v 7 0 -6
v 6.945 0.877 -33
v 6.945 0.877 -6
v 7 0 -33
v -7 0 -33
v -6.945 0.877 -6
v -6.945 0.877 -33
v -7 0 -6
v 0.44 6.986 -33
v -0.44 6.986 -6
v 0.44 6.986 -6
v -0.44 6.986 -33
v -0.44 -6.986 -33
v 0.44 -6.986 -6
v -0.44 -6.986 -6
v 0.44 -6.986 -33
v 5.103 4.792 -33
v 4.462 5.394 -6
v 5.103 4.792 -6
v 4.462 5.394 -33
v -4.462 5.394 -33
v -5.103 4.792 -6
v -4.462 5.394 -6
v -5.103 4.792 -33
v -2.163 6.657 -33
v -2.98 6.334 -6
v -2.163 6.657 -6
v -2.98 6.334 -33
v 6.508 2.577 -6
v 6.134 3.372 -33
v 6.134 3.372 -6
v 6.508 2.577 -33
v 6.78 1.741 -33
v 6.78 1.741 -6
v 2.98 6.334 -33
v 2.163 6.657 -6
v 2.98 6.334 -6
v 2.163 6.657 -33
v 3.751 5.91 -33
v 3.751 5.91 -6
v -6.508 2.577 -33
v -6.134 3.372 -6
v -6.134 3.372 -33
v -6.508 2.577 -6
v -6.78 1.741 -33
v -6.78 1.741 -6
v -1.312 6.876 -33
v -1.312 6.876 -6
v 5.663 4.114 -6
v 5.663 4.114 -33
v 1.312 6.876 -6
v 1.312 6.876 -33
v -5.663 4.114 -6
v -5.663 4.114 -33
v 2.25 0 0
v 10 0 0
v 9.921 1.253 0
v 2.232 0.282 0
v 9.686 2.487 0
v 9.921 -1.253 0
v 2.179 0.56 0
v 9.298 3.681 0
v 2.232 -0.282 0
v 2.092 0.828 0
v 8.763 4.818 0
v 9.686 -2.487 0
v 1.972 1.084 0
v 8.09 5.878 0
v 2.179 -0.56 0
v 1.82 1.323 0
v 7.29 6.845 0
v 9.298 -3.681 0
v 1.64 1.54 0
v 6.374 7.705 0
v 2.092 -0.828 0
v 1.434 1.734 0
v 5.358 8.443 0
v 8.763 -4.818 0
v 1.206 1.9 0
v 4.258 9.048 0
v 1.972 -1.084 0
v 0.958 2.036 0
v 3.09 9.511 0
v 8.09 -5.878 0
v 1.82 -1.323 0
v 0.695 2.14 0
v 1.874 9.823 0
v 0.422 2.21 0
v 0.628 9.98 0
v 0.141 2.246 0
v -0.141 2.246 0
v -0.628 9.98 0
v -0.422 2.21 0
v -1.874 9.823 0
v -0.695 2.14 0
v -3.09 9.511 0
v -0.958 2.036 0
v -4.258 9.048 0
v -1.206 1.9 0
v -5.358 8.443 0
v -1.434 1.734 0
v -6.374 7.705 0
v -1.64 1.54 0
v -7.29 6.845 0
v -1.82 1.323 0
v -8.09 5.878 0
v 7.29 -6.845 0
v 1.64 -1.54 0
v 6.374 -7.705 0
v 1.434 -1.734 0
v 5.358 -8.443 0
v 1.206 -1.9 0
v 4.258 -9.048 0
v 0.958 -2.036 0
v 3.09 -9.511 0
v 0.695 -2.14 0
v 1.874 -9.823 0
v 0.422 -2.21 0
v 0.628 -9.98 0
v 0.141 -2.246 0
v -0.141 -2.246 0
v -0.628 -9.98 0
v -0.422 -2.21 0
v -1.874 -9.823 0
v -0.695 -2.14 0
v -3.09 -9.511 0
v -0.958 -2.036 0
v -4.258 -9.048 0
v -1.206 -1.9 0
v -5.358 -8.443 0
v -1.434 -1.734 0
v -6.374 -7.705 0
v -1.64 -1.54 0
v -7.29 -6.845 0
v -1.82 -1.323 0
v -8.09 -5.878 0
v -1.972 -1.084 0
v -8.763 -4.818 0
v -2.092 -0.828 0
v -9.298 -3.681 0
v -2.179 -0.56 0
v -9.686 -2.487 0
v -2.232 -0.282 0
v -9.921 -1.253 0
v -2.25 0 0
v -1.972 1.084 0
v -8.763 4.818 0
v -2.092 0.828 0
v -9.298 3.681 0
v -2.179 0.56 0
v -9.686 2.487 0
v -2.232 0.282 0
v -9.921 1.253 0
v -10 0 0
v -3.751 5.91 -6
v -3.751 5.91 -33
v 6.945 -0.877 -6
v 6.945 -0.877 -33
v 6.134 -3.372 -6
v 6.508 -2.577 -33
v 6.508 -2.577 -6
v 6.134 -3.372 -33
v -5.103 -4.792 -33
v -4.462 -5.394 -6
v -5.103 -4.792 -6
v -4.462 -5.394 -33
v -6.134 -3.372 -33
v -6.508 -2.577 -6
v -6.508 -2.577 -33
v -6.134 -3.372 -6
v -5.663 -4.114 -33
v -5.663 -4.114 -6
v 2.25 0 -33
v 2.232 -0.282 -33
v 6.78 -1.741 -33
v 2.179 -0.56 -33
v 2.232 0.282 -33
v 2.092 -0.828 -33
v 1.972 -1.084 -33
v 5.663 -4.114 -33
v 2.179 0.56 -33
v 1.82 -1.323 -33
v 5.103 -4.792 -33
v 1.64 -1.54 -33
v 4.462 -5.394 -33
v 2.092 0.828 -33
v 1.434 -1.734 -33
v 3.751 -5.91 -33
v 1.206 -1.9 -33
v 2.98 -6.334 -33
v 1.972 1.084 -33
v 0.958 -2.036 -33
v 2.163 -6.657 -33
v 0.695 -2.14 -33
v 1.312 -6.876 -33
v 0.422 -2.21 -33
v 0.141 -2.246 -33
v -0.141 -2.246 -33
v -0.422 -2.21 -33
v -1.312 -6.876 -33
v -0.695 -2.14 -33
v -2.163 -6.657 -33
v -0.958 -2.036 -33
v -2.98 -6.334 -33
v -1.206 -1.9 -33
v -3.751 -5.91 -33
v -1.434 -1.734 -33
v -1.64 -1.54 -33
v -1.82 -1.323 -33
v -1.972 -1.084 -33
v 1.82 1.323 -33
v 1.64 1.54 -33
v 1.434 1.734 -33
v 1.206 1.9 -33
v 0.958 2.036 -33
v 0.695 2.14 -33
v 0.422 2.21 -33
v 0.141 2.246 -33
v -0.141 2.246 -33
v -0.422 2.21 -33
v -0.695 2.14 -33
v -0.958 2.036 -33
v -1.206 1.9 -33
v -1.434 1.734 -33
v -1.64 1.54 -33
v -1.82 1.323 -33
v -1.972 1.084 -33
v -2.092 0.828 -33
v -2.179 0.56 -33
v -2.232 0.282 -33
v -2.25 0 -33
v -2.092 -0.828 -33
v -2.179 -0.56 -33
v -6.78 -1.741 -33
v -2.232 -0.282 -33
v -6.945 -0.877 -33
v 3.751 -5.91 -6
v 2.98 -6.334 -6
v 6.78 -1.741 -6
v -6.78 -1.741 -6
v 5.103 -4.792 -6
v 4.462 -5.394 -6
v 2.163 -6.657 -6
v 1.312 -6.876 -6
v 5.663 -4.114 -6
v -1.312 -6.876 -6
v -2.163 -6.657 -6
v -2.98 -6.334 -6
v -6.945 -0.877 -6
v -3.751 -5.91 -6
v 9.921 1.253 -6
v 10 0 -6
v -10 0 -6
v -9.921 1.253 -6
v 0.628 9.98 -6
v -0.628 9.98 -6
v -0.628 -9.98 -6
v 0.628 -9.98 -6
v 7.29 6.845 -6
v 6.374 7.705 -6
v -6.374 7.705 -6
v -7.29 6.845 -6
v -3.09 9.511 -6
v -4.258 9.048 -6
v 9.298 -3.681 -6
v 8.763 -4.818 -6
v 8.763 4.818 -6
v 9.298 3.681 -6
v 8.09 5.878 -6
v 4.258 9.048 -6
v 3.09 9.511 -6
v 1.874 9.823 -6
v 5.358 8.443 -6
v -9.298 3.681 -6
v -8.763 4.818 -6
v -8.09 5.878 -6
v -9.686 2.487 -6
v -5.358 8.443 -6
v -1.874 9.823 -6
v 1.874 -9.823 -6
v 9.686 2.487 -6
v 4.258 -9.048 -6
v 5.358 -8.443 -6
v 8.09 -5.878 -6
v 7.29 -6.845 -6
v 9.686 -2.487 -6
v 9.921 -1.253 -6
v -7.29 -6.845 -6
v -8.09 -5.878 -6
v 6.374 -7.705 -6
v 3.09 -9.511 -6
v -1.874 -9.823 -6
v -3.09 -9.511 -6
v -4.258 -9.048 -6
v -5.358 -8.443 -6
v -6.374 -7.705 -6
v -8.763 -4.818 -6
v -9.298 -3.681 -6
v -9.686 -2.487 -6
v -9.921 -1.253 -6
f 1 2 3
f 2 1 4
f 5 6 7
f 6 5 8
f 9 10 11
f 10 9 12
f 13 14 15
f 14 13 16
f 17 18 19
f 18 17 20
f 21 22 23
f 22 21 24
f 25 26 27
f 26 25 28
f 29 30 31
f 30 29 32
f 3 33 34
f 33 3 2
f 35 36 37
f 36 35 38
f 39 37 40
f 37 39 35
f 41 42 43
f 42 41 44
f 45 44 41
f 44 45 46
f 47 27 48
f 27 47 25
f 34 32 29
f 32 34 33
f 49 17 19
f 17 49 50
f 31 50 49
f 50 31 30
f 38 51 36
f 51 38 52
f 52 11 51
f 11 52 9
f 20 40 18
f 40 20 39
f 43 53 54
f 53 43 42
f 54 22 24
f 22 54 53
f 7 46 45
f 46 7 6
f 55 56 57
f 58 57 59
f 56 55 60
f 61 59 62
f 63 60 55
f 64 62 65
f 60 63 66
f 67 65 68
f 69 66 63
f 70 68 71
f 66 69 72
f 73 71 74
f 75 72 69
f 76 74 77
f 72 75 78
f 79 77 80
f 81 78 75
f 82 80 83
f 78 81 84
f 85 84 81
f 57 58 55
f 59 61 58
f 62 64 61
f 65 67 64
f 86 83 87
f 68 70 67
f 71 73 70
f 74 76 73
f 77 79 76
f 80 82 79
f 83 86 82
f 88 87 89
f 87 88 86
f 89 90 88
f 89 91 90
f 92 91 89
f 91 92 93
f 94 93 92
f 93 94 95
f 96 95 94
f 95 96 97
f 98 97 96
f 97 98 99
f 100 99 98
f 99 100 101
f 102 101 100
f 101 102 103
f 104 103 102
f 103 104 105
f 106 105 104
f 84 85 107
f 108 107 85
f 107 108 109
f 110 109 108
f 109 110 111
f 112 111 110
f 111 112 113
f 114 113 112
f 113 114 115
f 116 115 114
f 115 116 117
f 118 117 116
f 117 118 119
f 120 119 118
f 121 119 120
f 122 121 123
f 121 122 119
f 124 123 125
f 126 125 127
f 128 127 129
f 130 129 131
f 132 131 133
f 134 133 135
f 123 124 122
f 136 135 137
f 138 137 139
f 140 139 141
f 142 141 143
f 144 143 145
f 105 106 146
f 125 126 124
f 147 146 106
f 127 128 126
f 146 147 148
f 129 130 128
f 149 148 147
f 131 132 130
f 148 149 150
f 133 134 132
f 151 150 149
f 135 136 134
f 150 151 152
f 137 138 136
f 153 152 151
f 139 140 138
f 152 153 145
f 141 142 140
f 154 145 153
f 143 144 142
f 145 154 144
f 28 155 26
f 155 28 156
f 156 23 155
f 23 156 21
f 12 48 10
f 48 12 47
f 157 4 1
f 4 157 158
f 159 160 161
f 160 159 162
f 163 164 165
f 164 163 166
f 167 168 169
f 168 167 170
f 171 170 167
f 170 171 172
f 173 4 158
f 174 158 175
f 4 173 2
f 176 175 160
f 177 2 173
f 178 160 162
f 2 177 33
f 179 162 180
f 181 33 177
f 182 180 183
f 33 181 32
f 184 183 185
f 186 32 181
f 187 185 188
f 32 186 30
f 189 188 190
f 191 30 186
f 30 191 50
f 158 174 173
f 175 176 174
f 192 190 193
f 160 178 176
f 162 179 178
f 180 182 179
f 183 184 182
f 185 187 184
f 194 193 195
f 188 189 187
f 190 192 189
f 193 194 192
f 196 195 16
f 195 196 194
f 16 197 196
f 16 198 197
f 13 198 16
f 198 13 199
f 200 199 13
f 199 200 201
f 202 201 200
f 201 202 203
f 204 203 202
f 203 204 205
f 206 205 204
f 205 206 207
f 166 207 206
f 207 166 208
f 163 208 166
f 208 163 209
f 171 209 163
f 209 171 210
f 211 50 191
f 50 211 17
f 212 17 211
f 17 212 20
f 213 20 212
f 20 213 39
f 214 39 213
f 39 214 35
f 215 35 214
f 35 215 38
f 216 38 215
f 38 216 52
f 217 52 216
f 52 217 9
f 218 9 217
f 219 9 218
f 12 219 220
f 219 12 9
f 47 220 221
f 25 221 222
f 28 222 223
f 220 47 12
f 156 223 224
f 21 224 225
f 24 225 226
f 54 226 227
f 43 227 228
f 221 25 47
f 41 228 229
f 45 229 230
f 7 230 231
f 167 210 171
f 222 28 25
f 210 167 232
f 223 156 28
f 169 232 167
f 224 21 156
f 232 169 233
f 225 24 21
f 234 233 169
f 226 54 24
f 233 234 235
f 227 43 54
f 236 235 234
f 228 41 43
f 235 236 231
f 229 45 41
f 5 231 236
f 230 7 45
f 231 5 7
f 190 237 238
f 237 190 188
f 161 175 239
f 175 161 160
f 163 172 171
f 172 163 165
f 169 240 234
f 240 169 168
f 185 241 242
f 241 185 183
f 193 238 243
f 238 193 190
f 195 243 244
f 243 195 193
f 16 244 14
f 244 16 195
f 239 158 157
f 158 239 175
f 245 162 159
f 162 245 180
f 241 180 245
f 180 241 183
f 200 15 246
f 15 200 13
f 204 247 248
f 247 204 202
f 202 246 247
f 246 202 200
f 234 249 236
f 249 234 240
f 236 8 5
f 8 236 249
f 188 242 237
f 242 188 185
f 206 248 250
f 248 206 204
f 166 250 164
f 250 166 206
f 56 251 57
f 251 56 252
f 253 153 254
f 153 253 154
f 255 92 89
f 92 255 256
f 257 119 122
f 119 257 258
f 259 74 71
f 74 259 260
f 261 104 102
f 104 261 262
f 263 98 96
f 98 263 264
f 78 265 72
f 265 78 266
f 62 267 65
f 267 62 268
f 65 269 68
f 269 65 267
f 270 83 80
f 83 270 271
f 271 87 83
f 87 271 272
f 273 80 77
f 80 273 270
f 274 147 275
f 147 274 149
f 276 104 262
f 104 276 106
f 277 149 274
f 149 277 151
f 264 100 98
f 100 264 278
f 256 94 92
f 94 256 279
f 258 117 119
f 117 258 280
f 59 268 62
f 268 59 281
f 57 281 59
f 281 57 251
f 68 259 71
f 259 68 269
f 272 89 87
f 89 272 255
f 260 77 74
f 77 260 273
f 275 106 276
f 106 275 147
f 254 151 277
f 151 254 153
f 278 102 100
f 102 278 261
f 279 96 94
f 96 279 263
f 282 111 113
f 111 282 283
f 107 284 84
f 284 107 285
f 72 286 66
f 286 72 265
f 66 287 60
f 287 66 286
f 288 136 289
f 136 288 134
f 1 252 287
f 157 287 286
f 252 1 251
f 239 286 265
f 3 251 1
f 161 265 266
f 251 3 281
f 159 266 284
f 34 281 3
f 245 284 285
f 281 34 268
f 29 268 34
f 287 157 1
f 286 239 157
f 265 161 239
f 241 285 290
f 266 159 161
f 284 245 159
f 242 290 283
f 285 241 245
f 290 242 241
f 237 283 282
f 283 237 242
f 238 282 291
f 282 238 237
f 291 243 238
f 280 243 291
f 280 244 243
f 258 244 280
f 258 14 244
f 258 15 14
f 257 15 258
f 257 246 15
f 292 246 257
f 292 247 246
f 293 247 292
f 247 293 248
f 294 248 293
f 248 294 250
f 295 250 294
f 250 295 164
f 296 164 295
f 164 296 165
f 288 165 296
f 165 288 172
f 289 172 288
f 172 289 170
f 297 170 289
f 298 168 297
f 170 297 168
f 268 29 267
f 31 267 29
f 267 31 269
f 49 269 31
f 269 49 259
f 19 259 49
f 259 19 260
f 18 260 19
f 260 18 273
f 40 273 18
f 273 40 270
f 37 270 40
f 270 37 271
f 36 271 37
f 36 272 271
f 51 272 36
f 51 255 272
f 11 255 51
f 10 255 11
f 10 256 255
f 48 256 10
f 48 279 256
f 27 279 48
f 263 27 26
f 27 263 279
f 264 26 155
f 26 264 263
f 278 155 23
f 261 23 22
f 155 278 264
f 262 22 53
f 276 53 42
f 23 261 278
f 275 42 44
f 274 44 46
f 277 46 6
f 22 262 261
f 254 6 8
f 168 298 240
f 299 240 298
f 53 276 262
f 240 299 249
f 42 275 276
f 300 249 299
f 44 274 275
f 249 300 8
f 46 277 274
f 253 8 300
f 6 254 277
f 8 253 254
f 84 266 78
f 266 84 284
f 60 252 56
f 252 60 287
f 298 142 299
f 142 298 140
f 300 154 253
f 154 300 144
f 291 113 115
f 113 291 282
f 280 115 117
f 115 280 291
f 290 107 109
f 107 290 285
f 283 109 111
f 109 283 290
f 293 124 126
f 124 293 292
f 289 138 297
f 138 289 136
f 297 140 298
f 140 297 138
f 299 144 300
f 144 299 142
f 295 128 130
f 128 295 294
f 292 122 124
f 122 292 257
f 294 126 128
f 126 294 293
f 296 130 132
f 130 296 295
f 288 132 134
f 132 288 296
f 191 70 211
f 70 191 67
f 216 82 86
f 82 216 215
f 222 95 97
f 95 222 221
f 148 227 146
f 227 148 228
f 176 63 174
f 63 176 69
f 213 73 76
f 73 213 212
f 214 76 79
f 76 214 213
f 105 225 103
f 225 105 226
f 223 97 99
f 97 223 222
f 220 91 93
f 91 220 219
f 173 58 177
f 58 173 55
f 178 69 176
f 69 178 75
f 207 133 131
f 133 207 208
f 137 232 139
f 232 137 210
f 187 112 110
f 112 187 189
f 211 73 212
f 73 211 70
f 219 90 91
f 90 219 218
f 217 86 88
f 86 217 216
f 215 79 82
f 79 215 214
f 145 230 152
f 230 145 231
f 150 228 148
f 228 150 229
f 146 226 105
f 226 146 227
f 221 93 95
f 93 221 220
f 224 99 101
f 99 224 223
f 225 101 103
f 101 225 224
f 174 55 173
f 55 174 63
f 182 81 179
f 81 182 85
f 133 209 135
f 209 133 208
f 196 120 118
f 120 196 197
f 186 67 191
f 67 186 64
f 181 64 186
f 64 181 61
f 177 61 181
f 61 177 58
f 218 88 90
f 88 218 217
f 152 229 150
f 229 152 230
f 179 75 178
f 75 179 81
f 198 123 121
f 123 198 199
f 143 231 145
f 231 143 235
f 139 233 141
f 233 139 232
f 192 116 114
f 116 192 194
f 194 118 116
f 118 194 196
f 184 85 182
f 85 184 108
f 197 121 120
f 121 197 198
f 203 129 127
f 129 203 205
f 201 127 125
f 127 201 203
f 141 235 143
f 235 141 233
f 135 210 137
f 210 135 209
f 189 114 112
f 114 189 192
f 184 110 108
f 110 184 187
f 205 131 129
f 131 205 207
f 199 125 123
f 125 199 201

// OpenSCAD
$fn = 50;


difference() {
	union() {
		translate(v = [0, 0, -33.0000000000]) {
			cylinder(h = 33, r = 7.0000000000);
		}
		translate(v = [0, 0, -6.0000000000]) {
			cylinder(h = 6, r = 10.0000000000);
		}
	}
	union() {
		#translate(v = [0, 0, -33]) {
			cylinder(h = 33, r = 2.2500000000);
		}
	}
}
